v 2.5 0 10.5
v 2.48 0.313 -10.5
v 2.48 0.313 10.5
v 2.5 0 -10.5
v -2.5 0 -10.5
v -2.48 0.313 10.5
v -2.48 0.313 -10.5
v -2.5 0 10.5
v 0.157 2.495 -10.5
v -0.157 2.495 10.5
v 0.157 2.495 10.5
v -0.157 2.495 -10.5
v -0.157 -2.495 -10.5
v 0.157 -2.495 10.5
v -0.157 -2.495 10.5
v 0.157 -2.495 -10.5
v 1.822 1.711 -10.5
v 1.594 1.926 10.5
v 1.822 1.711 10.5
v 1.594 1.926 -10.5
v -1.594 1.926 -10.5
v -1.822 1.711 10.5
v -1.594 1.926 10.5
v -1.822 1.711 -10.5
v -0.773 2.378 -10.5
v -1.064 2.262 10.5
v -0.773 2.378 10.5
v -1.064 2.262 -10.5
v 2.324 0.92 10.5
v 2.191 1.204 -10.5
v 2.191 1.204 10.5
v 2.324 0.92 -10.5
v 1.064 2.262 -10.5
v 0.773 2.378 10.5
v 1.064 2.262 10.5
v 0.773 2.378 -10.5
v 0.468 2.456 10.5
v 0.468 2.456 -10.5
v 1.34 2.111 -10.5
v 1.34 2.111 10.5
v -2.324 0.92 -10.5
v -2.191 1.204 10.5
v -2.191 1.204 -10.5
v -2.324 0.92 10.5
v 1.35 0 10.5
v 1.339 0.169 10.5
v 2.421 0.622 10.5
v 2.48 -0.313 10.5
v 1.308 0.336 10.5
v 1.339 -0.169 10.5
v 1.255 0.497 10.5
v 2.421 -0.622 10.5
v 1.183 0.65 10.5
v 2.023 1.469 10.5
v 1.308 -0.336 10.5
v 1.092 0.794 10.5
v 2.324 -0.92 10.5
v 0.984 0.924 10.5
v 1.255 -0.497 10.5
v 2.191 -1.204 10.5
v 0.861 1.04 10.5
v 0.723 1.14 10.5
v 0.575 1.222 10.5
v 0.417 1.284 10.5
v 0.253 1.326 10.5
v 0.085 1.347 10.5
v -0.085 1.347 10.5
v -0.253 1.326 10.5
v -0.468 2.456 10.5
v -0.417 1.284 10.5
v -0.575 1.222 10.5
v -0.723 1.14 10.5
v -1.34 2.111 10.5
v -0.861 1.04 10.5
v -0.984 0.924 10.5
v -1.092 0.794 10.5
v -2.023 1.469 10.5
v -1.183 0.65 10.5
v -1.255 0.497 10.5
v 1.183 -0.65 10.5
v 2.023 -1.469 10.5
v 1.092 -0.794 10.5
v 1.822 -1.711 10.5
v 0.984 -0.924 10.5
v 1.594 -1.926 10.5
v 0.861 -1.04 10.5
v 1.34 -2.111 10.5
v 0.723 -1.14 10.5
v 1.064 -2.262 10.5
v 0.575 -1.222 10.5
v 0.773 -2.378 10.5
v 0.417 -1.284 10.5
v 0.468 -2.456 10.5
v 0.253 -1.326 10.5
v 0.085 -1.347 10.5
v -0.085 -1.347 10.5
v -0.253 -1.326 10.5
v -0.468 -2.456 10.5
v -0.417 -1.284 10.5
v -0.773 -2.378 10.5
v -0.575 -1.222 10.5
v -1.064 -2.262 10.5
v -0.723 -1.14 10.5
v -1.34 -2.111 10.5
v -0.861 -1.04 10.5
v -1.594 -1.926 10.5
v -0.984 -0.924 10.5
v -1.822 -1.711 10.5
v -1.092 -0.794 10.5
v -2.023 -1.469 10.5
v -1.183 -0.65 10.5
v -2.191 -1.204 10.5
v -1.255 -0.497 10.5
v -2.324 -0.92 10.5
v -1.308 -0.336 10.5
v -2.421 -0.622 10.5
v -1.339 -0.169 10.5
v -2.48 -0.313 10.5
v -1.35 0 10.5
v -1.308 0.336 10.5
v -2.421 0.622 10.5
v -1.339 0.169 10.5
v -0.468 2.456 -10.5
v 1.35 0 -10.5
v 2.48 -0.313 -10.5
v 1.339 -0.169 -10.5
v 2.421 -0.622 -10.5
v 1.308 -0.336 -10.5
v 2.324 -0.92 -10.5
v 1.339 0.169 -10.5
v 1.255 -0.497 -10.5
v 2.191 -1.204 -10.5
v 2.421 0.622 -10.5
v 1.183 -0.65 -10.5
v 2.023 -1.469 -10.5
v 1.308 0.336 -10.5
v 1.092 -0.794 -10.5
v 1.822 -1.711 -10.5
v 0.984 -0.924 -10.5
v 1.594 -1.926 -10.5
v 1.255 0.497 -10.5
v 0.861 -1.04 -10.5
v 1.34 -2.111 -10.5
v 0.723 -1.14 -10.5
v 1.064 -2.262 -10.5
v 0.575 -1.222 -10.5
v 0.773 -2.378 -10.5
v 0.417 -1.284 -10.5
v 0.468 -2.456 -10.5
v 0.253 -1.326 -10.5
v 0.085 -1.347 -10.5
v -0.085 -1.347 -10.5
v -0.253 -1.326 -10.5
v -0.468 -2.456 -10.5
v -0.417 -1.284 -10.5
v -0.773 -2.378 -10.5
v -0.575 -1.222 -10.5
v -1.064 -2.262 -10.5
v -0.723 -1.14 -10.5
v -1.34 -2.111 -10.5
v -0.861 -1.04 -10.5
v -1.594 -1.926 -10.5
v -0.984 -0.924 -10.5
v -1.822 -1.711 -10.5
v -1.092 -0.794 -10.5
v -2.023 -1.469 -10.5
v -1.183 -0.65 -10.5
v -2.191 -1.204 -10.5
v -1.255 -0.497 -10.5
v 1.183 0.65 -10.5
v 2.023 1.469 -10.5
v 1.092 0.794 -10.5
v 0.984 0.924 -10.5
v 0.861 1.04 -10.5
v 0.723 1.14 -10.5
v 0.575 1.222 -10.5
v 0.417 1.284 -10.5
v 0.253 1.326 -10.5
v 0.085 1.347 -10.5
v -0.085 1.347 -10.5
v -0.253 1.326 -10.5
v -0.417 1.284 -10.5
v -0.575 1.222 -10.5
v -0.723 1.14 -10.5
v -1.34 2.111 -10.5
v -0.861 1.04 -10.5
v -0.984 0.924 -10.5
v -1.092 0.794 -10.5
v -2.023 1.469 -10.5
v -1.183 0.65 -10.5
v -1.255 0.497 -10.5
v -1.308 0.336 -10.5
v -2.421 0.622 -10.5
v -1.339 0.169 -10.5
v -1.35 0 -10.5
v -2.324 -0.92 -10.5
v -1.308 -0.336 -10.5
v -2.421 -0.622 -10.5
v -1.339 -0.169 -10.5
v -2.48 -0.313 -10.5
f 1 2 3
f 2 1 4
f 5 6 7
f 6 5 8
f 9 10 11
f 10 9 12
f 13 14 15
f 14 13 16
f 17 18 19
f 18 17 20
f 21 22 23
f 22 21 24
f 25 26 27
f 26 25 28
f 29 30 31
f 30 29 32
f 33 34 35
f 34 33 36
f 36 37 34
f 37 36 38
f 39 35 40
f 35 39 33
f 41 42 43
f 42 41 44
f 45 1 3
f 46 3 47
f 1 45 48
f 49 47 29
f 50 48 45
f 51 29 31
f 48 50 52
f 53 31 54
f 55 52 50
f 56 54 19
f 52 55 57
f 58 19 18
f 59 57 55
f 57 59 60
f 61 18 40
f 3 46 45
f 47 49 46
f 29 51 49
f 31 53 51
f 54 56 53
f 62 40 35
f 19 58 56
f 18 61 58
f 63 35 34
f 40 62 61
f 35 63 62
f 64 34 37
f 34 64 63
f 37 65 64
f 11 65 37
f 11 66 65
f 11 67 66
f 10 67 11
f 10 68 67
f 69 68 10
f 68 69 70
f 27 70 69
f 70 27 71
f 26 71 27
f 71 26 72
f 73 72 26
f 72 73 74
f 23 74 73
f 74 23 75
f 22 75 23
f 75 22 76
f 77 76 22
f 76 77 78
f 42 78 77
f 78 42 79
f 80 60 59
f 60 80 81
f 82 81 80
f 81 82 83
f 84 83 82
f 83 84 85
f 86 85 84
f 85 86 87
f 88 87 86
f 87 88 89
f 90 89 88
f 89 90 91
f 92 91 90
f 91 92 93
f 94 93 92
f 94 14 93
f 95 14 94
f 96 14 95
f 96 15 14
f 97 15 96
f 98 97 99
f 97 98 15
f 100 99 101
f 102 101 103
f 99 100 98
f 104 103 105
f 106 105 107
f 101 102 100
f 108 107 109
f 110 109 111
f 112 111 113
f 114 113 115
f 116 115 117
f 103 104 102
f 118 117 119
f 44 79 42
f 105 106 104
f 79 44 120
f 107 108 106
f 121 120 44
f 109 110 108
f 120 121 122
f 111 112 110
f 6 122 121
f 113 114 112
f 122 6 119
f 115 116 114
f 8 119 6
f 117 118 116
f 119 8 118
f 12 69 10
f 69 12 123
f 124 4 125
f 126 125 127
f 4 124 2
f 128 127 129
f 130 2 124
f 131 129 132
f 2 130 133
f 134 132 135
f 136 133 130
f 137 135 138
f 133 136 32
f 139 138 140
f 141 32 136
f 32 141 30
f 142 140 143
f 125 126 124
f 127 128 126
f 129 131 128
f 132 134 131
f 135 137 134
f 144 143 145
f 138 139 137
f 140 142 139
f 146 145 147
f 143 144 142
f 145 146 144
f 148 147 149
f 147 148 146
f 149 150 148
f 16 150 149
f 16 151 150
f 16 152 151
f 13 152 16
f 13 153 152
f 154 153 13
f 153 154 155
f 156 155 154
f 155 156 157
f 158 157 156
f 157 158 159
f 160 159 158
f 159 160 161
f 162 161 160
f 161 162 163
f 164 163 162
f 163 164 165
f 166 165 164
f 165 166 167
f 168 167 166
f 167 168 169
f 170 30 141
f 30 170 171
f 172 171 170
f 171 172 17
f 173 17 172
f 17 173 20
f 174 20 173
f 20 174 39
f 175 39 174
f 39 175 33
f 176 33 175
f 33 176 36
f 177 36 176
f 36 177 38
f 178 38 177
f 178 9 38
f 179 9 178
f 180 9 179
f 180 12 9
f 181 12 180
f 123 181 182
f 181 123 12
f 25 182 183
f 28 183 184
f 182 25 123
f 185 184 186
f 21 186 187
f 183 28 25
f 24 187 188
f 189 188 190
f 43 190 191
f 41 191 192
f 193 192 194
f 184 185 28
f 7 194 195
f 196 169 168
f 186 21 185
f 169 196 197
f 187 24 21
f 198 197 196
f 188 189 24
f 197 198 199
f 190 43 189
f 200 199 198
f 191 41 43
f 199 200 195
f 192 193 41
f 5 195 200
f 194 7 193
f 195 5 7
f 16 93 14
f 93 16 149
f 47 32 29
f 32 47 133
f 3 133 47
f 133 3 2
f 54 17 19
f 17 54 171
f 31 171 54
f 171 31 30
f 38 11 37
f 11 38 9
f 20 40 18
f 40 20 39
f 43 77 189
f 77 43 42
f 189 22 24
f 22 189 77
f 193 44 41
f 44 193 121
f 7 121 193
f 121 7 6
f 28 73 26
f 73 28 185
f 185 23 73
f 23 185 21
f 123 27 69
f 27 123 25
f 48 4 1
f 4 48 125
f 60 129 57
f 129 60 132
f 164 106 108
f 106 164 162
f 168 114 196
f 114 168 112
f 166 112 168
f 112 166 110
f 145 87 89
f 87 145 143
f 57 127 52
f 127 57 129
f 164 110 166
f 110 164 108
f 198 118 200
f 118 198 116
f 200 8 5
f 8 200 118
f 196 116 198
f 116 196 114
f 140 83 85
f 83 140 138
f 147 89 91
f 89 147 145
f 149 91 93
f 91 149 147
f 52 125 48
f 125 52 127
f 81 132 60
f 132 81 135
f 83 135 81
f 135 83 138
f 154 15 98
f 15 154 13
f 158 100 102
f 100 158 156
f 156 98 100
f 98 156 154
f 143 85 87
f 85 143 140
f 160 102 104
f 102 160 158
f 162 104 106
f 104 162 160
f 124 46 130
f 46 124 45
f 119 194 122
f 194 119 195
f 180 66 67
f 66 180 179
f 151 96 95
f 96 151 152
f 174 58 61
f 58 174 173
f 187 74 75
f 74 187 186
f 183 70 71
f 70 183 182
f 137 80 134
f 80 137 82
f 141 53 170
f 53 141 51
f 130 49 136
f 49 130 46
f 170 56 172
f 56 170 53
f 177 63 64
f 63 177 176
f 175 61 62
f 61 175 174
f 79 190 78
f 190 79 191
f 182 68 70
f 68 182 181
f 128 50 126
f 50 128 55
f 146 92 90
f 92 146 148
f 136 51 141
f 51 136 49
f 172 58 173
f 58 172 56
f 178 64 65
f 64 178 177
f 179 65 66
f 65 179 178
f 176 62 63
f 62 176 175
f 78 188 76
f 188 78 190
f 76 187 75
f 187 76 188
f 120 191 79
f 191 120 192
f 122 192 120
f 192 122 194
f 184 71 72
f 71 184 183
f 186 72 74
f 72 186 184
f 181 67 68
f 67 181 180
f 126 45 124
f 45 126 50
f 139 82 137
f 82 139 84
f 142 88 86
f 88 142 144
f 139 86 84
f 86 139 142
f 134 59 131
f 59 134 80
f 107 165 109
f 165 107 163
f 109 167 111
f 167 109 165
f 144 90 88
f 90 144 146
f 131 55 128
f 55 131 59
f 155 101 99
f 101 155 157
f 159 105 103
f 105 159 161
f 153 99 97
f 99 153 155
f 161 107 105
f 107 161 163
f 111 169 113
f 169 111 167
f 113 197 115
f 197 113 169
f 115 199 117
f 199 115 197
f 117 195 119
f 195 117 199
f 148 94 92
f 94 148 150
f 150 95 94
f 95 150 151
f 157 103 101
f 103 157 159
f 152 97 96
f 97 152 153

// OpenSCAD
$fn = 50;


difference() {
	union() {
		translate(v = [0, 0, -10.5000000000]) {
			cylinder(h = 21, r = 2.5000000000);
		}
	}
	union() {
		translate(v = [0, 0, -100.0000000000]) {
			cylinder(h = 200, r = 1.3500000000);
		}
	}
}
